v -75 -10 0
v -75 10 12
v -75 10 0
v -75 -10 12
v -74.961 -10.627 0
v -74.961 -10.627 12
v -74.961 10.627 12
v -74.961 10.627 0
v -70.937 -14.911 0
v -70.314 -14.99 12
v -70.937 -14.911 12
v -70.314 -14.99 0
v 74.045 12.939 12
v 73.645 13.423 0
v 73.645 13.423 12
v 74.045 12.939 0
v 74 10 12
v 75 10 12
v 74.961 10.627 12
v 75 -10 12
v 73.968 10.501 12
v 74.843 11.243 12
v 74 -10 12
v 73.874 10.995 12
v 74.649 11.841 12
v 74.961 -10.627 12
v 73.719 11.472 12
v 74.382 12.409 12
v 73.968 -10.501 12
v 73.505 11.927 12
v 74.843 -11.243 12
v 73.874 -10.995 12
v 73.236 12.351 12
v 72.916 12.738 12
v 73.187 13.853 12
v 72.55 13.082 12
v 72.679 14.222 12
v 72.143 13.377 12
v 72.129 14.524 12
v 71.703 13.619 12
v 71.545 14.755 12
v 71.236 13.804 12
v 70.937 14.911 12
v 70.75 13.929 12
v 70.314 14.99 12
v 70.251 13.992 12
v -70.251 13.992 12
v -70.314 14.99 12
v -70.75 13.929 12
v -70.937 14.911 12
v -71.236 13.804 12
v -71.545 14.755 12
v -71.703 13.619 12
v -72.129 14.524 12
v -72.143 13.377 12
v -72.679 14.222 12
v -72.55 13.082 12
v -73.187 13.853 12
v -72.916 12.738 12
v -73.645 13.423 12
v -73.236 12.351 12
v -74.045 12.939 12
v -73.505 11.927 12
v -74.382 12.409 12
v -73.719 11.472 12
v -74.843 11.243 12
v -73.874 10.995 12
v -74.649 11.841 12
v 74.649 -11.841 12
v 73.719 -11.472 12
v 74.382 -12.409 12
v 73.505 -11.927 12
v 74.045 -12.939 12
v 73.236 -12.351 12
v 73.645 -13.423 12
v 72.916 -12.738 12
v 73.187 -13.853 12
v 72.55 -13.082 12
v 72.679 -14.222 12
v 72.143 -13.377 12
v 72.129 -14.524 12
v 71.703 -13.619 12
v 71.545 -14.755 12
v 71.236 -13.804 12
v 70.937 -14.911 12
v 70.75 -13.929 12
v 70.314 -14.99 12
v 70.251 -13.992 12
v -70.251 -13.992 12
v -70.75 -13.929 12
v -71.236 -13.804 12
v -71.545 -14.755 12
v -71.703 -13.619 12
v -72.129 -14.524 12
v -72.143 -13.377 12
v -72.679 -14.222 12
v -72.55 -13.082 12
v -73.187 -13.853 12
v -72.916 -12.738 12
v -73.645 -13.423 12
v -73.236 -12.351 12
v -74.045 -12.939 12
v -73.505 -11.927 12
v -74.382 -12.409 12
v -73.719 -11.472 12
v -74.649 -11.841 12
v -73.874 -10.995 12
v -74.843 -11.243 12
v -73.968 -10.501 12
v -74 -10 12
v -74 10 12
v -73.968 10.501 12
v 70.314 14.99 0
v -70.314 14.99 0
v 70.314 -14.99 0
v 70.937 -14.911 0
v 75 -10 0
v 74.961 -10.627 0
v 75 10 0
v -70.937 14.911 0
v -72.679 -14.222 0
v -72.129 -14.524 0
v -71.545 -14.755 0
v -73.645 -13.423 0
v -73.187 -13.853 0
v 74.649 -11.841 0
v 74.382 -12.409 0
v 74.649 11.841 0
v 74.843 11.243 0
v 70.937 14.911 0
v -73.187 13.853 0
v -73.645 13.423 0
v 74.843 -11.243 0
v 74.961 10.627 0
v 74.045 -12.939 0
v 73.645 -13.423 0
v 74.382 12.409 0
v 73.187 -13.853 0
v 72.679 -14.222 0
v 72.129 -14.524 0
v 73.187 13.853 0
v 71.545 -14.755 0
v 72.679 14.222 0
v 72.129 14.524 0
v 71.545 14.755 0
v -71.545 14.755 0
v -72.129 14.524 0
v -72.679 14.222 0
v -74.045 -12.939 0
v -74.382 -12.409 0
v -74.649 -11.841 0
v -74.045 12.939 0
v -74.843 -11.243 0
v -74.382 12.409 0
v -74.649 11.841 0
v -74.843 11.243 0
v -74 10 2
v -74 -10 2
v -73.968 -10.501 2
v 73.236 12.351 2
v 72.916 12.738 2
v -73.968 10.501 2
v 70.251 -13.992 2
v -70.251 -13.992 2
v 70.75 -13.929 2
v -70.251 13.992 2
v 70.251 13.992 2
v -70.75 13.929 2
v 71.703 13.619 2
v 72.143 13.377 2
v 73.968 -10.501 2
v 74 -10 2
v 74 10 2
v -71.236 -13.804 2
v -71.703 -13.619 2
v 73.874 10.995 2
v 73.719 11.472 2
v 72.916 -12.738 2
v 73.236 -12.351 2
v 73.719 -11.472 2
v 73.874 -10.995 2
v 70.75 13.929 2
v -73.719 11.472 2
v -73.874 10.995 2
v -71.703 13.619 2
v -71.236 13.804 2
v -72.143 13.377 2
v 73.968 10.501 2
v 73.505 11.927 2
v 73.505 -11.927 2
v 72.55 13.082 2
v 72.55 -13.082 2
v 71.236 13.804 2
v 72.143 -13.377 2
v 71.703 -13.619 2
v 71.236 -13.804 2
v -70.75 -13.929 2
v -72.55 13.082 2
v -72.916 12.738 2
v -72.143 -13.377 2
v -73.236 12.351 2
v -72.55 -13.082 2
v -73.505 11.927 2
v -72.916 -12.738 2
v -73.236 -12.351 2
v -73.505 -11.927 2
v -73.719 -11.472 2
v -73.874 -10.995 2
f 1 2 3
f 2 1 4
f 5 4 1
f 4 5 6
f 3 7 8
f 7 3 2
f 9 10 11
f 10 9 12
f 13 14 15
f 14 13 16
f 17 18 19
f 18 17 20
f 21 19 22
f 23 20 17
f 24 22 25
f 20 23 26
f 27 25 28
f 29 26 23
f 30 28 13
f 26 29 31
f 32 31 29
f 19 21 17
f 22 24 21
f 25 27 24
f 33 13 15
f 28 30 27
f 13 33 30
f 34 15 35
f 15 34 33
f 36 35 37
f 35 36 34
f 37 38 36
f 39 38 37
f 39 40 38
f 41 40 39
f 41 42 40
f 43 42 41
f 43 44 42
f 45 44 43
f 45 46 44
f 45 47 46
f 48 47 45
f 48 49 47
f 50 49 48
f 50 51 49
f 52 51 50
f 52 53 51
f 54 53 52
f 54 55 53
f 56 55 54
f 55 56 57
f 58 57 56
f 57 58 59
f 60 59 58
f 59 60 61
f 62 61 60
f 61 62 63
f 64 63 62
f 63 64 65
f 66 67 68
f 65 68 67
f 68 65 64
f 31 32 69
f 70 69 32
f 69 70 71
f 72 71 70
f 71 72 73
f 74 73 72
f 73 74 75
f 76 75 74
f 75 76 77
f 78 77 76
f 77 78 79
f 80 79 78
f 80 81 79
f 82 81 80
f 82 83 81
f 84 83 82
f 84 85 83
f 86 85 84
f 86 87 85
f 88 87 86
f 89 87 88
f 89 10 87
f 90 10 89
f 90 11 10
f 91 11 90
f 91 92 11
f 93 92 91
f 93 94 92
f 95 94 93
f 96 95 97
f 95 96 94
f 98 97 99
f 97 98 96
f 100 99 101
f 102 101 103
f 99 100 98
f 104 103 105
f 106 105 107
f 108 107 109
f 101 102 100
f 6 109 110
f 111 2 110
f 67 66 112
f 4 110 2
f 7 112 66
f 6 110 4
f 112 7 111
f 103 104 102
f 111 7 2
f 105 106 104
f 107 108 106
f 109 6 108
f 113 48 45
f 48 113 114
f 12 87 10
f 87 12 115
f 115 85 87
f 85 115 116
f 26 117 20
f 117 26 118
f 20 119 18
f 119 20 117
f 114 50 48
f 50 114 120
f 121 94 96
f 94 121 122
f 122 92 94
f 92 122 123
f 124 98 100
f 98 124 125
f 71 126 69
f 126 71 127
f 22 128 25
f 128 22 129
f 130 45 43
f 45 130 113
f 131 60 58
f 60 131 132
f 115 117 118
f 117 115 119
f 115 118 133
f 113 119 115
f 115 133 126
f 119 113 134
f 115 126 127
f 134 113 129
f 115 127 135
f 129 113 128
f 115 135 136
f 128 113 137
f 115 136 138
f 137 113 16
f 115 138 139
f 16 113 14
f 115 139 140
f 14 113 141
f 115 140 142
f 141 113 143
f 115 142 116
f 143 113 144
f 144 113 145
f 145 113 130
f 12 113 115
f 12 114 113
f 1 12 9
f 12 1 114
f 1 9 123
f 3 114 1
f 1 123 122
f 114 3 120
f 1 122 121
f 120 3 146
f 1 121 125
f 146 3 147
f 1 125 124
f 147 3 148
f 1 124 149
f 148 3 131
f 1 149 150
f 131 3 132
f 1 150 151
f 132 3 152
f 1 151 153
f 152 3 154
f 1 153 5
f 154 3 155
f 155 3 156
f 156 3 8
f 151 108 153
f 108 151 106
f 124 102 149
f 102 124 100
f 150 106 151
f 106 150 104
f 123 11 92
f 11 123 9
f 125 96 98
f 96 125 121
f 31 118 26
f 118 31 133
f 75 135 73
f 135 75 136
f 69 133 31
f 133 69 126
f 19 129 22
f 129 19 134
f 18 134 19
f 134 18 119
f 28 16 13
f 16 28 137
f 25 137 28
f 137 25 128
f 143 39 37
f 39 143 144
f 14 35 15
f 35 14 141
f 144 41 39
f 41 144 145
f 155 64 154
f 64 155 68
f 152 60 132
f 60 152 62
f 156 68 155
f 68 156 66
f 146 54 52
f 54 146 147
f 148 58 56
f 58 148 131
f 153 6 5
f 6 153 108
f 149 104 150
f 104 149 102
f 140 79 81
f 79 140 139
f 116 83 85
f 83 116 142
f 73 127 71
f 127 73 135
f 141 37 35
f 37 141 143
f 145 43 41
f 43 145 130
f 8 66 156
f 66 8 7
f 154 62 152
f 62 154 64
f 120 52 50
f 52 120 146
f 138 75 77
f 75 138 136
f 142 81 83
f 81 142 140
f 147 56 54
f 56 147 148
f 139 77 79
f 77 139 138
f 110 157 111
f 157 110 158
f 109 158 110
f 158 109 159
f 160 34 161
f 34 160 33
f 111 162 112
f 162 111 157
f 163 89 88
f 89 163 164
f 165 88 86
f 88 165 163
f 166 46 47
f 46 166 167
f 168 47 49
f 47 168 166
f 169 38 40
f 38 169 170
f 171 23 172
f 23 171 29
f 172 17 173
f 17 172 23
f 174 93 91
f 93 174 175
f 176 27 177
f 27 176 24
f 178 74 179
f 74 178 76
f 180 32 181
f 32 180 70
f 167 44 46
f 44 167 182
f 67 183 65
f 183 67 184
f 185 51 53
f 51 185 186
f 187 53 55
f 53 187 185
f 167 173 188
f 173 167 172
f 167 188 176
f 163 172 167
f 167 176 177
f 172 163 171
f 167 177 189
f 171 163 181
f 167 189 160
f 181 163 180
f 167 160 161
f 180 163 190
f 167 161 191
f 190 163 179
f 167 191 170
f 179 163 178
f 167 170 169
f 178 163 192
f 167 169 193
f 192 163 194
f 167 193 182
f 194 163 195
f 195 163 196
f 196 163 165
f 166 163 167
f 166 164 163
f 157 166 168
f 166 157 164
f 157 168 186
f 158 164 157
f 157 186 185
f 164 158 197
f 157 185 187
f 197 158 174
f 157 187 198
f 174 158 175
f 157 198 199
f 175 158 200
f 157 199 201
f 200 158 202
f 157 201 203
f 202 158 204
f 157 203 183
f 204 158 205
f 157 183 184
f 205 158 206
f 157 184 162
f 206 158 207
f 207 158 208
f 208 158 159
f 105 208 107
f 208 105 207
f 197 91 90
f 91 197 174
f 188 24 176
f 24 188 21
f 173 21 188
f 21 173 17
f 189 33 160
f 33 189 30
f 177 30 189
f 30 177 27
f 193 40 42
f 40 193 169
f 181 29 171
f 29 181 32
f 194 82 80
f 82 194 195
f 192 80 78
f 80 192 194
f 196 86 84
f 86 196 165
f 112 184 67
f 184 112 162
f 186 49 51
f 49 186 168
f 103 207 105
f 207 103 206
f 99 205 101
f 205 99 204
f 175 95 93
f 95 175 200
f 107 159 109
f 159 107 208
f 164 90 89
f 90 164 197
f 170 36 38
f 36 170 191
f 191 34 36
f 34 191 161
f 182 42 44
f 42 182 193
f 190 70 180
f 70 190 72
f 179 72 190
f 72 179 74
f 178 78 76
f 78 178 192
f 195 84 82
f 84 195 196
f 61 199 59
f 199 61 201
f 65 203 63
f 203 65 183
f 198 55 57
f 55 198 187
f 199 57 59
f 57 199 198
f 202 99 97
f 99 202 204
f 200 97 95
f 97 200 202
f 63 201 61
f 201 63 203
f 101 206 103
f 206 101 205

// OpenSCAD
$fn = 50;


difference() {
	union() {
		hull() {
			translate(v = [-70.0000000000, 10.0000000000, 0]) {
				cylinder(h = 12, r = 5);
			}
			translate(v = [70.0000000000, 10.0000000000, 0]) {
				cylinder(h = 12, r = 5);
			}
			translate(v = [-70.0000000000, -10.0000000000, 0]) {
				cylinder(h = 12, r = 5);
			}
			translate(v = [70.0000000000, -10.0000000000, 0]) {
				cylinder(h = 12, r = 5);
			}
		}
	}
	union() {
		translate(v = [0, 0, 2]) {
			hull() {
				translate(v = [-70.0000000000, 10.0000000000, 0]) {
					cylinder(h = 10, r = 4);
				}
				translate(v = [70.0000000000, 10.0000000000, 0]) {
					cylinder(h = 10, r = 4);
				}
				translate(v = [-70.0000000000, -10.0000000000, 0]) {
					cylinder(h = 10, r = 4);
				}
				translate(v = [70.0000000000, -10.0000000000, 0]) {
					cylinder(h = 10, r = 4);
				}
			}
		}
	}
}
